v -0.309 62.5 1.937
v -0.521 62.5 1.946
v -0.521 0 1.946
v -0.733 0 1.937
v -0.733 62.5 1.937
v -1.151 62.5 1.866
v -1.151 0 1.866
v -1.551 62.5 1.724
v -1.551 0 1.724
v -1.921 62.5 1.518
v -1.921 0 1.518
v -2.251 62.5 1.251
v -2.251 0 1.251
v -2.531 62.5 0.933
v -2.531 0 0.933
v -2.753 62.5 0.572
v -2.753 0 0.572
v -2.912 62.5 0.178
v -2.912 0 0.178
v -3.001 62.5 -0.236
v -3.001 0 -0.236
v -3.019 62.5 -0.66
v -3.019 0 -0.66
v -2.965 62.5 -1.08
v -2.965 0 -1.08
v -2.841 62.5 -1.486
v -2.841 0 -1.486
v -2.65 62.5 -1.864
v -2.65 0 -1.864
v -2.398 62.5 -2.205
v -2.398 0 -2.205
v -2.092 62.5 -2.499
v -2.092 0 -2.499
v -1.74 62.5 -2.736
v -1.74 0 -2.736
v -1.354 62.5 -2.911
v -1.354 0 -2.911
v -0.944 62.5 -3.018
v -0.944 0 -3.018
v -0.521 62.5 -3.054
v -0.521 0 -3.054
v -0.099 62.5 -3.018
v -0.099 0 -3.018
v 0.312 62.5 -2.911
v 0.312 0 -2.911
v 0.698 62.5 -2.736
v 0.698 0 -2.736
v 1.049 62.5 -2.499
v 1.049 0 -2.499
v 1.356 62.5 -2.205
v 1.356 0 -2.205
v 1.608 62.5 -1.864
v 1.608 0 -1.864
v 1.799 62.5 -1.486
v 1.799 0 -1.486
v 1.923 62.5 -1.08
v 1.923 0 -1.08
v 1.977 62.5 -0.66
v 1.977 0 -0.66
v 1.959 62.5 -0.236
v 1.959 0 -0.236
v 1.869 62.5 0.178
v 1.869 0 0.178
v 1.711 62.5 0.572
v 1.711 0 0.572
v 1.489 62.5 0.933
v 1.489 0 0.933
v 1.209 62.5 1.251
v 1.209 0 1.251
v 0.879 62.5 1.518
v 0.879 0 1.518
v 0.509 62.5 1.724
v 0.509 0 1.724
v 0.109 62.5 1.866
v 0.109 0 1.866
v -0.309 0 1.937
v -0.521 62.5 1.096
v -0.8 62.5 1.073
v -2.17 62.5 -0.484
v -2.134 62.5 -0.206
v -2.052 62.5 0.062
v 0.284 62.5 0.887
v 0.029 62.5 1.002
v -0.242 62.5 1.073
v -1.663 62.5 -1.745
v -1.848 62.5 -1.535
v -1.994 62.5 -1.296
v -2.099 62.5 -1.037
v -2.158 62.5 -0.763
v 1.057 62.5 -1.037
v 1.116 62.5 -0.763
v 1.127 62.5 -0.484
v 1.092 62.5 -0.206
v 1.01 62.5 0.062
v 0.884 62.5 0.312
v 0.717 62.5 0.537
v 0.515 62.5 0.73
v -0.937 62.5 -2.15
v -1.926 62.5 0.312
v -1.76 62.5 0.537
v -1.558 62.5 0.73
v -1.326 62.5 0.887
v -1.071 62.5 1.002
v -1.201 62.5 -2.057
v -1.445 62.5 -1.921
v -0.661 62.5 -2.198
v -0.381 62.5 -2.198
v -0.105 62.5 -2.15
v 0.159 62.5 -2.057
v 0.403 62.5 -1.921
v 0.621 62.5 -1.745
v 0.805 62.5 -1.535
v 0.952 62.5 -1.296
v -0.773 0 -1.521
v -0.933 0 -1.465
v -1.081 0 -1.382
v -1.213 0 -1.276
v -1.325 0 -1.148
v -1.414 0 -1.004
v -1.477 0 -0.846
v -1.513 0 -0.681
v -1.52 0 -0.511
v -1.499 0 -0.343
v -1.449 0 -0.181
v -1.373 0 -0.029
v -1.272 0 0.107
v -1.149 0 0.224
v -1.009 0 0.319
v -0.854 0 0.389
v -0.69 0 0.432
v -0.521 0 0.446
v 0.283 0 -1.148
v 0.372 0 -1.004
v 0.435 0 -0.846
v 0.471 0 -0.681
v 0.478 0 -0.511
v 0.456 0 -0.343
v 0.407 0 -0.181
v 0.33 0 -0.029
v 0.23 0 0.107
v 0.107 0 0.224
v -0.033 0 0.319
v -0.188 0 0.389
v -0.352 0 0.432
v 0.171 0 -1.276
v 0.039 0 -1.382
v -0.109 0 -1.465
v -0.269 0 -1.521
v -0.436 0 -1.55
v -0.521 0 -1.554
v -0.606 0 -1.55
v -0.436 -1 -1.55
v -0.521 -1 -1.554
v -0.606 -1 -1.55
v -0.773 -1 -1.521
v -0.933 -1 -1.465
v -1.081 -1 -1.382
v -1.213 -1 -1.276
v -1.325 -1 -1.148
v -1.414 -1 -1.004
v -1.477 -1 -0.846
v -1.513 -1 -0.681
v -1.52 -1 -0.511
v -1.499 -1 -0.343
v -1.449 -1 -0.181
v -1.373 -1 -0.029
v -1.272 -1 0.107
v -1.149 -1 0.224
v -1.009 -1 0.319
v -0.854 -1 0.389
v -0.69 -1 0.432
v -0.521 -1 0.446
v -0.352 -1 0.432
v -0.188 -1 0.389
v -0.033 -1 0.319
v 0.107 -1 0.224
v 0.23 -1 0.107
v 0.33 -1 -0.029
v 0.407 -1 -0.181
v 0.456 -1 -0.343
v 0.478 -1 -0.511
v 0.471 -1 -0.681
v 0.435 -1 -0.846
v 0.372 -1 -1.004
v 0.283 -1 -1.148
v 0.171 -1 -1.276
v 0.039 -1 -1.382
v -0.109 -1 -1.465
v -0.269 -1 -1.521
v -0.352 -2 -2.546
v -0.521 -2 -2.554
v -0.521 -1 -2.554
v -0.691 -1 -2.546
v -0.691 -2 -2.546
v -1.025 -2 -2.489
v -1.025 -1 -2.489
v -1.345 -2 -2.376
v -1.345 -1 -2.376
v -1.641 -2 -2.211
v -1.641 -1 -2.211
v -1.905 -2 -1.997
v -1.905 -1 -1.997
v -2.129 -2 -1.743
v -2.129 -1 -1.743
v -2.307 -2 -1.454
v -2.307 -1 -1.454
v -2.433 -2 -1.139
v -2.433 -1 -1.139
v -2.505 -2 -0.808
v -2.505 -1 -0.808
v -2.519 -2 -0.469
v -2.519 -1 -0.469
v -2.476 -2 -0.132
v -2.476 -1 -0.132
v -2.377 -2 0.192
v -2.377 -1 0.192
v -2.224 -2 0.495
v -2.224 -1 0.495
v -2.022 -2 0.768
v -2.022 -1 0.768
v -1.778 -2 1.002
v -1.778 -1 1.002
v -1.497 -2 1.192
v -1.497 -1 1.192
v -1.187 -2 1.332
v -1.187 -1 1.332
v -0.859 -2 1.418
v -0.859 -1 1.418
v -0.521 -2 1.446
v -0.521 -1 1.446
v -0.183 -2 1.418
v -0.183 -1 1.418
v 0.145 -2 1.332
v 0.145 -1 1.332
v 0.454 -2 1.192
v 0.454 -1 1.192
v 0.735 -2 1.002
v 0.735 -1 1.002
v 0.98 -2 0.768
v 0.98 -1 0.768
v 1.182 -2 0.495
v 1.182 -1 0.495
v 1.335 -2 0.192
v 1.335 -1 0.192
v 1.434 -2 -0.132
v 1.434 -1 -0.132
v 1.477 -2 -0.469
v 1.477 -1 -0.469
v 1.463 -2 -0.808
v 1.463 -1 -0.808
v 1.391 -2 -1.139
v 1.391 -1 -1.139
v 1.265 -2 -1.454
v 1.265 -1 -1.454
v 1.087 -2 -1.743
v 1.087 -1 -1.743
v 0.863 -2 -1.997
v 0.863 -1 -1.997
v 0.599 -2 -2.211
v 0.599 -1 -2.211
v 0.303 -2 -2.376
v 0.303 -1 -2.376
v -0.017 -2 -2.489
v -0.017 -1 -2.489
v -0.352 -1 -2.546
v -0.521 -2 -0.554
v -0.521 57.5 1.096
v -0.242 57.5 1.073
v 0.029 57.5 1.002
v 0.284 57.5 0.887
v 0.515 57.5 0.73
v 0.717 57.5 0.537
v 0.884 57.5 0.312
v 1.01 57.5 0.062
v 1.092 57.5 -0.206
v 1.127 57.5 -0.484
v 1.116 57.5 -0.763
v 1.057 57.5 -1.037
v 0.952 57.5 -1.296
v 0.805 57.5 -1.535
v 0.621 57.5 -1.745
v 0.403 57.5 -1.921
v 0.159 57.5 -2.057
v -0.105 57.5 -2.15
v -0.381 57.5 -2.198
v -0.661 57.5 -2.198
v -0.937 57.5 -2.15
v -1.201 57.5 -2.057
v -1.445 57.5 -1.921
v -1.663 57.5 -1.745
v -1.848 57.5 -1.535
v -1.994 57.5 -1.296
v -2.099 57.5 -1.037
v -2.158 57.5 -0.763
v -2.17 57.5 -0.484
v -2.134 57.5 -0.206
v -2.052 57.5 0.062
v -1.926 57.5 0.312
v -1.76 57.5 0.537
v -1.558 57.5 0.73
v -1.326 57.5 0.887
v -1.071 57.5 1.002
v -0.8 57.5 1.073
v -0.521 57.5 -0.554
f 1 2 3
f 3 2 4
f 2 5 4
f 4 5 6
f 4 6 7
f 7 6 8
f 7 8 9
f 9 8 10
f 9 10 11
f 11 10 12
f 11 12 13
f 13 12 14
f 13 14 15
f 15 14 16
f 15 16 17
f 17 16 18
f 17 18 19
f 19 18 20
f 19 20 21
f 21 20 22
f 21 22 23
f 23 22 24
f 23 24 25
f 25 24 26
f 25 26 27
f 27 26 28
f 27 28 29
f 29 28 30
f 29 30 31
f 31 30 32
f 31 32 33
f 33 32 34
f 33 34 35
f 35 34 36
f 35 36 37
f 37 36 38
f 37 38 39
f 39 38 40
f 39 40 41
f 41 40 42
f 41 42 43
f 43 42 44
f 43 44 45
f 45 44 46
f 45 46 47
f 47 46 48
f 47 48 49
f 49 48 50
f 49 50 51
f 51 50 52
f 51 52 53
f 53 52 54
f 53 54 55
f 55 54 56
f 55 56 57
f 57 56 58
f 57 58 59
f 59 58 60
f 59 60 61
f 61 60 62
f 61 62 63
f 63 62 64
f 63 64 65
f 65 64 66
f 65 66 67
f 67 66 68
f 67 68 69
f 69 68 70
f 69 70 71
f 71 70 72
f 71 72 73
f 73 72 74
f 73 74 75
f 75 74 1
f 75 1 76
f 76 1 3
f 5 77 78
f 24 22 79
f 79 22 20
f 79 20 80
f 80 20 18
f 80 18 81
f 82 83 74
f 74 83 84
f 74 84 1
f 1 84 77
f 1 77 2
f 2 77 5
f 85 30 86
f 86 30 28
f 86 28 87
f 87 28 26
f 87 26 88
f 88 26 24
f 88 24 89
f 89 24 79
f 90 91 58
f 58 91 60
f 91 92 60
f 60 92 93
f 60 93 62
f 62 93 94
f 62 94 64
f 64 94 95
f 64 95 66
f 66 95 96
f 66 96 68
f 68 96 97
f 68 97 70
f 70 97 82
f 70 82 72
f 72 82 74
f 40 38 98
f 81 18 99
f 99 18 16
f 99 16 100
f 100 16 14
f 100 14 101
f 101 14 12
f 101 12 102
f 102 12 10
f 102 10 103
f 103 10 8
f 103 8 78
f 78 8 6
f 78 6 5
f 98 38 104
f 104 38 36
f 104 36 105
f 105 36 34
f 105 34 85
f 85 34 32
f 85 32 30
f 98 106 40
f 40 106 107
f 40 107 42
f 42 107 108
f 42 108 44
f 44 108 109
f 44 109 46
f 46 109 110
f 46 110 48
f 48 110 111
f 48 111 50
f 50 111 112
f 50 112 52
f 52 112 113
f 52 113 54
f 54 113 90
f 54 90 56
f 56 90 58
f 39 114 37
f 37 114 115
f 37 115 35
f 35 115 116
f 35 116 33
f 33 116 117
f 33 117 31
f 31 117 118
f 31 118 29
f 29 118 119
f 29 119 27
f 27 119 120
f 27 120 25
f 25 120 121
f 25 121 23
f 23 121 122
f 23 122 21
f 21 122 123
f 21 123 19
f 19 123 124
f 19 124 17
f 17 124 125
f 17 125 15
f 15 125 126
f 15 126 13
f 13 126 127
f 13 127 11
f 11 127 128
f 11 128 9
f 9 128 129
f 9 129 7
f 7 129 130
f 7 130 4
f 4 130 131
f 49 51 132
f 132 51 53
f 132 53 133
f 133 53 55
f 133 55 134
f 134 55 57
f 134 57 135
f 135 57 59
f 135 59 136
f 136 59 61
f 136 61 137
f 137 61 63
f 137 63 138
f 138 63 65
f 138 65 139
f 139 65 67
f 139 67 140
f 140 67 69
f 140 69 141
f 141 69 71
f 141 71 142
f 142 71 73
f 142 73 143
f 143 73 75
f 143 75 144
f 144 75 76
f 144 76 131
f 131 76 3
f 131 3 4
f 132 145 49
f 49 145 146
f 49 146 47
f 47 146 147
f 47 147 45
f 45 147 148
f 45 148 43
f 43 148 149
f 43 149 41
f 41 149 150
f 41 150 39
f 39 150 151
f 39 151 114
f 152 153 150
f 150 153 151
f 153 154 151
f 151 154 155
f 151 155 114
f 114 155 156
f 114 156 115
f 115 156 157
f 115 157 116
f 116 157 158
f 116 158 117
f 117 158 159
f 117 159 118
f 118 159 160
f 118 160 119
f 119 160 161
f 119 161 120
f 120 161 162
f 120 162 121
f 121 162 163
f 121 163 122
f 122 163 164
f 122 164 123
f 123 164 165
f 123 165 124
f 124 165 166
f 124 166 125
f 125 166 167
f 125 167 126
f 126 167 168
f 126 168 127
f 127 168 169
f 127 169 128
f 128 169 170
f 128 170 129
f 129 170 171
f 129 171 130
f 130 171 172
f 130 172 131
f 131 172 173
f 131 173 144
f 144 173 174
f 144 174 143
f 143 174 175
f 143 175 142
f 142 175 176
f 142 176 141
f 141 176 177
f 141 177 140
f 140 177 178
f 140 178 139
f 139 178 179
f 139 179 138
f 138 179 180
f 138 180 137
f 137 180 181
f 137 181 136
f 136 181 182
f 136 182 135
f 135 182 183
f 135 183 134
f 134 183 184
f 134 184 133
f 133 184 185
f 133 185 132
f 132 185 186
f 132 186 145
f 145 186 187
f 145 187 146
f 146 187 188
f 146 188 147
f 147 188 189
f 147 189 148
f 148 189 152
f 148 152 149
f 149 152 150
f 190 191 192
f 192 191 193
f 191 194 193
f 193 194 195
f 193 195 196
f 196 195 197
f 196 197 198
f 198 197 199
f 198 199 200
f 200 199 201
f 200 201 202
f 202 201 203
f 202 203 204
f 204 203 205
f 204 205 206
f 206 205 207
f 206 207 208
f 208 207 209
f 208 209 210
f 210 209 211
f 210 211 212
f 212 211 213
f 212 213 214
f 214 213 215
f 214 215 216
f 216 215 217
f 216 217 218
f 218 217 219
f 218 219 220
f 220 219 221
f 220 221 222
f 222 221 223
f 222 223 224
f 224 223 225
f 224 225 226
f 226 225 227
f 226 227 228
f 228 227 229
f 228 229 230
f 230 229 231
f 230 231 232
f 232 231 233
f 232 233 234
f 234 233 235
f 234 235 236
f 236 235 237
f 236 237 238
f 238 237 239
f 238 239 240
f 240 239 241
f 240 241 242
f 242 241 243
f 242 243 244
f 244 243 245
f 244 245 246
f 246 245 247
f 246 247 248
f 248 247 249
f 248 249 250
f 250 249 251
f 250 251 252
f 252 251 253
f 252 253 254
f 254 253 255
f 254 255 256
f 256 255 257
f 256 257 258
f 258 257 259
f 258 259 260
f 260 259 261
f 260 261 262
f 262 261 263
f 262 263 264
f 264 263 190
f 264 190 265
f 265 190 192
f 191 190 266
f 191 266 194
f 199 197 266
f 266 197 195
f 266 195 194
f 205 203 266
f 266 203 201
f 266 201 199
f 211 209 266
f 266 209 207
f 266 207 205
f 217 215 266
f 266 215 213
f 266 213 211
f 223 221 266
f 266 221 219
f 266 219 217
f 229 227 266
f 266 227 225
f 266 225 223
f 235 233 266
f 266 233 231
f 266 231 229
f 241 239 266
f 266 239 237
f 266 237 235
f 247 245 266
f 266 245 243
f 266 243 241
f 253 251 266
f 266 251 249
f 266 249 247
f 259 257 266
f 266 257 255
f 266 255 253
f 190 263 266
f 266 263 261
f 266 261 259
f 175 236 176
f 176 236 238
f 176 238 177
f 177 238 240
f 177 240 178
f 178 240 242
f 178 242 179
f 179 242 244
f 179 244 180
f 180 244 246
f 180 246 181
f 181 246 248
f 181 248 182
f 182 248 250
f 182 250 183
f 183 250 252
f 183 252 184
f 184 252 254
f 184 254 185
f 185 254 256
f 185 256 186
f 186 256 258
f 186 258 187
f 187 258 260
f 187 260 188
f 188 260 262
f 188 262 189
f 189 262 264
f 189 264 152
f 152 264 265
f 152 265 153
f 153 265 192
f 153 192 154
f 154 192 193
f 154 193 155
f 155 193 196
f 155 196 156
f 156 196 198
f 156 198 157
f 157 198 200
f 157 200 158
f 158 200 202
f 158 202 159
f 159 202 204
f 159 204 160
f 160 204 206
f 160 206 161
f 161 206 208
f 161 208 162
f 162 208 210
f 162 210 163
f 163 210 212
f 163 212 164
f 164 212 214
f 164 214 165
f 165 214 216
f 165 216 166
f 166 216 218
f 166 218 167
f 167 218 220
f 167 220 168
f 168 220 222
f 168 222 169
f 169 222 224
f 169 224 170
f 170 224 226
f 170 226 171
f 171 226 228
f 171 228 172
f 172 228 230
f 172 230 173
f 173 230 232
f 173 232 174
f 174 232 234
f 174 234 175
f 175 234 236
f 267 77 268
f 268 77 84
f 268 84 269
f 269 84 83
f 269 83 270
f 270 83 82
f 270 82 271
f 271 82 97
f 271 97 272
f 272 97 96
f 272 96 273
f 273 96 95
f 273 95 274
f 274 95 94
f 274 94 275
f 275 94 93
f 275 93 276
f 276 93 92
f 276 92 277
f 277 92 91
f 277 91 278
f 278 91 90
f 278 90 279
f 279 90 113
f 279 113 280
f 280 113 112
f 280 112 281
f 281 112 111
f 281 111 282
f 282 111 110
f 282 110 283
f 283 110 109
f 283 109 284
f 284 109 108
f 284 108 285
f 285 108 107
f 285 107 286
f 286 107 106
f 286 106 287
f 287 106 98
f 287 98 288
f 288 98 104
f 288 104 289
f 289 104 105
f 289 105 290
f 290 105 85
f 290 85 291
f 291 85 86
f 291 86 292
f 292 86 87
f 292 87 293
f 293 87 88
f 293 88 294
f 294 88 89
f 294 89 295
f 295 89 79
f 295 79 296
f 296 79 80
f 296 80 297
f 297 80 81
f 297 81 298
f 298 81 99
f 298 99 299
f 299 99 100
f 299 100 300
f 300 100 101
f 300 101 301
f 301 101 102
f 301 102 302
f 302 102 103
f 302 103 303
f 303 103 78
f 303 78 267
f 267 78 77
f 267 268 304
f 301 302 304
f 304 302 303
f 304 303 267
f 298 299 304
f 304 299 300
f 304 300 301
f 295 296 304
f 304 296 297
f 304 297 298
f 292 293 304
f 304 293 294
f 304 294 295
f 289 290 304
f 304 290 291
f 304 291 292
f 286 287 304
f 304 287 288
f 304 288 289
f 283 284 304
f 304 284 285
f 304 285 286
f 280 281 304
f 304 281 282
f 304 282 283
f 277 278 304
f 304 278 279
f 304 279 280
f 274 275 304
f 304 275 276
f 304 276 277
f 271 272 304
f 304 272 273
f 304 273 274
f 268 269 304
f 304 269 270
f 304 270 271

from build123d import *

# Parameters (mm, degrees)
SKETCH1_R           = 2.5
BOSS_EXTRUDE1_DEPTH = 62.5
SKETCH1_3_R         = 2
BOSS_EXTRUDE2_DEPTH = 1
SKETCH5_R           = 1
BOSS_EXTRUDE3_DEPTH = 1
SKETCH6_R           = 2
BOSS_EXTRUDE4_DEPTH = 1
SKETCH12_R          = 1.65
CUT_EXTRUDE1_DEPTH  = 5


with BuildPart() as part:
    # Sketch1 → Boss-Extrude1 (new body)
    with BuildSketch(Plane(origin=(0, 0, 0), x_dir=(1, 0, 0), z_dir=(0, 1, 0))):
        with Locations((-0.522013312, 0.511138034)):
            Circle(SKETCH1_R)
    extrude(amount=BOSS_EXTRUDE1_DEPTH)

    # Sketch1<3> → Boss-Extrude2 (add)
    with BuildSketch(Plane(origin=(0, 0, 0), x_dir=(1, 0, 0), z_dir=(0, 1, 0))):
        with Locations((-0.522013312, 0.511138034)):
            Circle(SKETCH1_3_R)
    extrude(amount=BOSS_EXTRUDE2_DEPTH)

    # Sketch5 → Boss-Extrude3 (add)
    with BuildSketch(Plane.XZ):
        with Locations((-0.522013312, -0.511138034)):
            Circle(SKETCH5_R)
    extrude(amount=BOSS_EXTRUDE3_DEPTH)

    # Sketch6 → Boss-Extrude4 (add)
    with BuildSketch(Plane.XZ.offset(1)):
        with Locations((-0.522013312, -0.511138034)):
            Circle(SKETCH6_R)
    extrude(amount=BOSS_EXTRUDE4_DEPTH)

    # Sketch12 → Cut-Extrude1 (cut)
    with BuildSketch(Plane(origin=(0, 62.5, 0), x_dir=(1, 0, 0), z_dir=(0, 1, 0))):
        with Locations((-0.522013312, 0.511138034)):
            Circle(SKETCH12_R)
    extrude(amount=-CUT_EXTRUDE1_DEPTH, mode=Mode.SUBTRACT)


solid = part.part
